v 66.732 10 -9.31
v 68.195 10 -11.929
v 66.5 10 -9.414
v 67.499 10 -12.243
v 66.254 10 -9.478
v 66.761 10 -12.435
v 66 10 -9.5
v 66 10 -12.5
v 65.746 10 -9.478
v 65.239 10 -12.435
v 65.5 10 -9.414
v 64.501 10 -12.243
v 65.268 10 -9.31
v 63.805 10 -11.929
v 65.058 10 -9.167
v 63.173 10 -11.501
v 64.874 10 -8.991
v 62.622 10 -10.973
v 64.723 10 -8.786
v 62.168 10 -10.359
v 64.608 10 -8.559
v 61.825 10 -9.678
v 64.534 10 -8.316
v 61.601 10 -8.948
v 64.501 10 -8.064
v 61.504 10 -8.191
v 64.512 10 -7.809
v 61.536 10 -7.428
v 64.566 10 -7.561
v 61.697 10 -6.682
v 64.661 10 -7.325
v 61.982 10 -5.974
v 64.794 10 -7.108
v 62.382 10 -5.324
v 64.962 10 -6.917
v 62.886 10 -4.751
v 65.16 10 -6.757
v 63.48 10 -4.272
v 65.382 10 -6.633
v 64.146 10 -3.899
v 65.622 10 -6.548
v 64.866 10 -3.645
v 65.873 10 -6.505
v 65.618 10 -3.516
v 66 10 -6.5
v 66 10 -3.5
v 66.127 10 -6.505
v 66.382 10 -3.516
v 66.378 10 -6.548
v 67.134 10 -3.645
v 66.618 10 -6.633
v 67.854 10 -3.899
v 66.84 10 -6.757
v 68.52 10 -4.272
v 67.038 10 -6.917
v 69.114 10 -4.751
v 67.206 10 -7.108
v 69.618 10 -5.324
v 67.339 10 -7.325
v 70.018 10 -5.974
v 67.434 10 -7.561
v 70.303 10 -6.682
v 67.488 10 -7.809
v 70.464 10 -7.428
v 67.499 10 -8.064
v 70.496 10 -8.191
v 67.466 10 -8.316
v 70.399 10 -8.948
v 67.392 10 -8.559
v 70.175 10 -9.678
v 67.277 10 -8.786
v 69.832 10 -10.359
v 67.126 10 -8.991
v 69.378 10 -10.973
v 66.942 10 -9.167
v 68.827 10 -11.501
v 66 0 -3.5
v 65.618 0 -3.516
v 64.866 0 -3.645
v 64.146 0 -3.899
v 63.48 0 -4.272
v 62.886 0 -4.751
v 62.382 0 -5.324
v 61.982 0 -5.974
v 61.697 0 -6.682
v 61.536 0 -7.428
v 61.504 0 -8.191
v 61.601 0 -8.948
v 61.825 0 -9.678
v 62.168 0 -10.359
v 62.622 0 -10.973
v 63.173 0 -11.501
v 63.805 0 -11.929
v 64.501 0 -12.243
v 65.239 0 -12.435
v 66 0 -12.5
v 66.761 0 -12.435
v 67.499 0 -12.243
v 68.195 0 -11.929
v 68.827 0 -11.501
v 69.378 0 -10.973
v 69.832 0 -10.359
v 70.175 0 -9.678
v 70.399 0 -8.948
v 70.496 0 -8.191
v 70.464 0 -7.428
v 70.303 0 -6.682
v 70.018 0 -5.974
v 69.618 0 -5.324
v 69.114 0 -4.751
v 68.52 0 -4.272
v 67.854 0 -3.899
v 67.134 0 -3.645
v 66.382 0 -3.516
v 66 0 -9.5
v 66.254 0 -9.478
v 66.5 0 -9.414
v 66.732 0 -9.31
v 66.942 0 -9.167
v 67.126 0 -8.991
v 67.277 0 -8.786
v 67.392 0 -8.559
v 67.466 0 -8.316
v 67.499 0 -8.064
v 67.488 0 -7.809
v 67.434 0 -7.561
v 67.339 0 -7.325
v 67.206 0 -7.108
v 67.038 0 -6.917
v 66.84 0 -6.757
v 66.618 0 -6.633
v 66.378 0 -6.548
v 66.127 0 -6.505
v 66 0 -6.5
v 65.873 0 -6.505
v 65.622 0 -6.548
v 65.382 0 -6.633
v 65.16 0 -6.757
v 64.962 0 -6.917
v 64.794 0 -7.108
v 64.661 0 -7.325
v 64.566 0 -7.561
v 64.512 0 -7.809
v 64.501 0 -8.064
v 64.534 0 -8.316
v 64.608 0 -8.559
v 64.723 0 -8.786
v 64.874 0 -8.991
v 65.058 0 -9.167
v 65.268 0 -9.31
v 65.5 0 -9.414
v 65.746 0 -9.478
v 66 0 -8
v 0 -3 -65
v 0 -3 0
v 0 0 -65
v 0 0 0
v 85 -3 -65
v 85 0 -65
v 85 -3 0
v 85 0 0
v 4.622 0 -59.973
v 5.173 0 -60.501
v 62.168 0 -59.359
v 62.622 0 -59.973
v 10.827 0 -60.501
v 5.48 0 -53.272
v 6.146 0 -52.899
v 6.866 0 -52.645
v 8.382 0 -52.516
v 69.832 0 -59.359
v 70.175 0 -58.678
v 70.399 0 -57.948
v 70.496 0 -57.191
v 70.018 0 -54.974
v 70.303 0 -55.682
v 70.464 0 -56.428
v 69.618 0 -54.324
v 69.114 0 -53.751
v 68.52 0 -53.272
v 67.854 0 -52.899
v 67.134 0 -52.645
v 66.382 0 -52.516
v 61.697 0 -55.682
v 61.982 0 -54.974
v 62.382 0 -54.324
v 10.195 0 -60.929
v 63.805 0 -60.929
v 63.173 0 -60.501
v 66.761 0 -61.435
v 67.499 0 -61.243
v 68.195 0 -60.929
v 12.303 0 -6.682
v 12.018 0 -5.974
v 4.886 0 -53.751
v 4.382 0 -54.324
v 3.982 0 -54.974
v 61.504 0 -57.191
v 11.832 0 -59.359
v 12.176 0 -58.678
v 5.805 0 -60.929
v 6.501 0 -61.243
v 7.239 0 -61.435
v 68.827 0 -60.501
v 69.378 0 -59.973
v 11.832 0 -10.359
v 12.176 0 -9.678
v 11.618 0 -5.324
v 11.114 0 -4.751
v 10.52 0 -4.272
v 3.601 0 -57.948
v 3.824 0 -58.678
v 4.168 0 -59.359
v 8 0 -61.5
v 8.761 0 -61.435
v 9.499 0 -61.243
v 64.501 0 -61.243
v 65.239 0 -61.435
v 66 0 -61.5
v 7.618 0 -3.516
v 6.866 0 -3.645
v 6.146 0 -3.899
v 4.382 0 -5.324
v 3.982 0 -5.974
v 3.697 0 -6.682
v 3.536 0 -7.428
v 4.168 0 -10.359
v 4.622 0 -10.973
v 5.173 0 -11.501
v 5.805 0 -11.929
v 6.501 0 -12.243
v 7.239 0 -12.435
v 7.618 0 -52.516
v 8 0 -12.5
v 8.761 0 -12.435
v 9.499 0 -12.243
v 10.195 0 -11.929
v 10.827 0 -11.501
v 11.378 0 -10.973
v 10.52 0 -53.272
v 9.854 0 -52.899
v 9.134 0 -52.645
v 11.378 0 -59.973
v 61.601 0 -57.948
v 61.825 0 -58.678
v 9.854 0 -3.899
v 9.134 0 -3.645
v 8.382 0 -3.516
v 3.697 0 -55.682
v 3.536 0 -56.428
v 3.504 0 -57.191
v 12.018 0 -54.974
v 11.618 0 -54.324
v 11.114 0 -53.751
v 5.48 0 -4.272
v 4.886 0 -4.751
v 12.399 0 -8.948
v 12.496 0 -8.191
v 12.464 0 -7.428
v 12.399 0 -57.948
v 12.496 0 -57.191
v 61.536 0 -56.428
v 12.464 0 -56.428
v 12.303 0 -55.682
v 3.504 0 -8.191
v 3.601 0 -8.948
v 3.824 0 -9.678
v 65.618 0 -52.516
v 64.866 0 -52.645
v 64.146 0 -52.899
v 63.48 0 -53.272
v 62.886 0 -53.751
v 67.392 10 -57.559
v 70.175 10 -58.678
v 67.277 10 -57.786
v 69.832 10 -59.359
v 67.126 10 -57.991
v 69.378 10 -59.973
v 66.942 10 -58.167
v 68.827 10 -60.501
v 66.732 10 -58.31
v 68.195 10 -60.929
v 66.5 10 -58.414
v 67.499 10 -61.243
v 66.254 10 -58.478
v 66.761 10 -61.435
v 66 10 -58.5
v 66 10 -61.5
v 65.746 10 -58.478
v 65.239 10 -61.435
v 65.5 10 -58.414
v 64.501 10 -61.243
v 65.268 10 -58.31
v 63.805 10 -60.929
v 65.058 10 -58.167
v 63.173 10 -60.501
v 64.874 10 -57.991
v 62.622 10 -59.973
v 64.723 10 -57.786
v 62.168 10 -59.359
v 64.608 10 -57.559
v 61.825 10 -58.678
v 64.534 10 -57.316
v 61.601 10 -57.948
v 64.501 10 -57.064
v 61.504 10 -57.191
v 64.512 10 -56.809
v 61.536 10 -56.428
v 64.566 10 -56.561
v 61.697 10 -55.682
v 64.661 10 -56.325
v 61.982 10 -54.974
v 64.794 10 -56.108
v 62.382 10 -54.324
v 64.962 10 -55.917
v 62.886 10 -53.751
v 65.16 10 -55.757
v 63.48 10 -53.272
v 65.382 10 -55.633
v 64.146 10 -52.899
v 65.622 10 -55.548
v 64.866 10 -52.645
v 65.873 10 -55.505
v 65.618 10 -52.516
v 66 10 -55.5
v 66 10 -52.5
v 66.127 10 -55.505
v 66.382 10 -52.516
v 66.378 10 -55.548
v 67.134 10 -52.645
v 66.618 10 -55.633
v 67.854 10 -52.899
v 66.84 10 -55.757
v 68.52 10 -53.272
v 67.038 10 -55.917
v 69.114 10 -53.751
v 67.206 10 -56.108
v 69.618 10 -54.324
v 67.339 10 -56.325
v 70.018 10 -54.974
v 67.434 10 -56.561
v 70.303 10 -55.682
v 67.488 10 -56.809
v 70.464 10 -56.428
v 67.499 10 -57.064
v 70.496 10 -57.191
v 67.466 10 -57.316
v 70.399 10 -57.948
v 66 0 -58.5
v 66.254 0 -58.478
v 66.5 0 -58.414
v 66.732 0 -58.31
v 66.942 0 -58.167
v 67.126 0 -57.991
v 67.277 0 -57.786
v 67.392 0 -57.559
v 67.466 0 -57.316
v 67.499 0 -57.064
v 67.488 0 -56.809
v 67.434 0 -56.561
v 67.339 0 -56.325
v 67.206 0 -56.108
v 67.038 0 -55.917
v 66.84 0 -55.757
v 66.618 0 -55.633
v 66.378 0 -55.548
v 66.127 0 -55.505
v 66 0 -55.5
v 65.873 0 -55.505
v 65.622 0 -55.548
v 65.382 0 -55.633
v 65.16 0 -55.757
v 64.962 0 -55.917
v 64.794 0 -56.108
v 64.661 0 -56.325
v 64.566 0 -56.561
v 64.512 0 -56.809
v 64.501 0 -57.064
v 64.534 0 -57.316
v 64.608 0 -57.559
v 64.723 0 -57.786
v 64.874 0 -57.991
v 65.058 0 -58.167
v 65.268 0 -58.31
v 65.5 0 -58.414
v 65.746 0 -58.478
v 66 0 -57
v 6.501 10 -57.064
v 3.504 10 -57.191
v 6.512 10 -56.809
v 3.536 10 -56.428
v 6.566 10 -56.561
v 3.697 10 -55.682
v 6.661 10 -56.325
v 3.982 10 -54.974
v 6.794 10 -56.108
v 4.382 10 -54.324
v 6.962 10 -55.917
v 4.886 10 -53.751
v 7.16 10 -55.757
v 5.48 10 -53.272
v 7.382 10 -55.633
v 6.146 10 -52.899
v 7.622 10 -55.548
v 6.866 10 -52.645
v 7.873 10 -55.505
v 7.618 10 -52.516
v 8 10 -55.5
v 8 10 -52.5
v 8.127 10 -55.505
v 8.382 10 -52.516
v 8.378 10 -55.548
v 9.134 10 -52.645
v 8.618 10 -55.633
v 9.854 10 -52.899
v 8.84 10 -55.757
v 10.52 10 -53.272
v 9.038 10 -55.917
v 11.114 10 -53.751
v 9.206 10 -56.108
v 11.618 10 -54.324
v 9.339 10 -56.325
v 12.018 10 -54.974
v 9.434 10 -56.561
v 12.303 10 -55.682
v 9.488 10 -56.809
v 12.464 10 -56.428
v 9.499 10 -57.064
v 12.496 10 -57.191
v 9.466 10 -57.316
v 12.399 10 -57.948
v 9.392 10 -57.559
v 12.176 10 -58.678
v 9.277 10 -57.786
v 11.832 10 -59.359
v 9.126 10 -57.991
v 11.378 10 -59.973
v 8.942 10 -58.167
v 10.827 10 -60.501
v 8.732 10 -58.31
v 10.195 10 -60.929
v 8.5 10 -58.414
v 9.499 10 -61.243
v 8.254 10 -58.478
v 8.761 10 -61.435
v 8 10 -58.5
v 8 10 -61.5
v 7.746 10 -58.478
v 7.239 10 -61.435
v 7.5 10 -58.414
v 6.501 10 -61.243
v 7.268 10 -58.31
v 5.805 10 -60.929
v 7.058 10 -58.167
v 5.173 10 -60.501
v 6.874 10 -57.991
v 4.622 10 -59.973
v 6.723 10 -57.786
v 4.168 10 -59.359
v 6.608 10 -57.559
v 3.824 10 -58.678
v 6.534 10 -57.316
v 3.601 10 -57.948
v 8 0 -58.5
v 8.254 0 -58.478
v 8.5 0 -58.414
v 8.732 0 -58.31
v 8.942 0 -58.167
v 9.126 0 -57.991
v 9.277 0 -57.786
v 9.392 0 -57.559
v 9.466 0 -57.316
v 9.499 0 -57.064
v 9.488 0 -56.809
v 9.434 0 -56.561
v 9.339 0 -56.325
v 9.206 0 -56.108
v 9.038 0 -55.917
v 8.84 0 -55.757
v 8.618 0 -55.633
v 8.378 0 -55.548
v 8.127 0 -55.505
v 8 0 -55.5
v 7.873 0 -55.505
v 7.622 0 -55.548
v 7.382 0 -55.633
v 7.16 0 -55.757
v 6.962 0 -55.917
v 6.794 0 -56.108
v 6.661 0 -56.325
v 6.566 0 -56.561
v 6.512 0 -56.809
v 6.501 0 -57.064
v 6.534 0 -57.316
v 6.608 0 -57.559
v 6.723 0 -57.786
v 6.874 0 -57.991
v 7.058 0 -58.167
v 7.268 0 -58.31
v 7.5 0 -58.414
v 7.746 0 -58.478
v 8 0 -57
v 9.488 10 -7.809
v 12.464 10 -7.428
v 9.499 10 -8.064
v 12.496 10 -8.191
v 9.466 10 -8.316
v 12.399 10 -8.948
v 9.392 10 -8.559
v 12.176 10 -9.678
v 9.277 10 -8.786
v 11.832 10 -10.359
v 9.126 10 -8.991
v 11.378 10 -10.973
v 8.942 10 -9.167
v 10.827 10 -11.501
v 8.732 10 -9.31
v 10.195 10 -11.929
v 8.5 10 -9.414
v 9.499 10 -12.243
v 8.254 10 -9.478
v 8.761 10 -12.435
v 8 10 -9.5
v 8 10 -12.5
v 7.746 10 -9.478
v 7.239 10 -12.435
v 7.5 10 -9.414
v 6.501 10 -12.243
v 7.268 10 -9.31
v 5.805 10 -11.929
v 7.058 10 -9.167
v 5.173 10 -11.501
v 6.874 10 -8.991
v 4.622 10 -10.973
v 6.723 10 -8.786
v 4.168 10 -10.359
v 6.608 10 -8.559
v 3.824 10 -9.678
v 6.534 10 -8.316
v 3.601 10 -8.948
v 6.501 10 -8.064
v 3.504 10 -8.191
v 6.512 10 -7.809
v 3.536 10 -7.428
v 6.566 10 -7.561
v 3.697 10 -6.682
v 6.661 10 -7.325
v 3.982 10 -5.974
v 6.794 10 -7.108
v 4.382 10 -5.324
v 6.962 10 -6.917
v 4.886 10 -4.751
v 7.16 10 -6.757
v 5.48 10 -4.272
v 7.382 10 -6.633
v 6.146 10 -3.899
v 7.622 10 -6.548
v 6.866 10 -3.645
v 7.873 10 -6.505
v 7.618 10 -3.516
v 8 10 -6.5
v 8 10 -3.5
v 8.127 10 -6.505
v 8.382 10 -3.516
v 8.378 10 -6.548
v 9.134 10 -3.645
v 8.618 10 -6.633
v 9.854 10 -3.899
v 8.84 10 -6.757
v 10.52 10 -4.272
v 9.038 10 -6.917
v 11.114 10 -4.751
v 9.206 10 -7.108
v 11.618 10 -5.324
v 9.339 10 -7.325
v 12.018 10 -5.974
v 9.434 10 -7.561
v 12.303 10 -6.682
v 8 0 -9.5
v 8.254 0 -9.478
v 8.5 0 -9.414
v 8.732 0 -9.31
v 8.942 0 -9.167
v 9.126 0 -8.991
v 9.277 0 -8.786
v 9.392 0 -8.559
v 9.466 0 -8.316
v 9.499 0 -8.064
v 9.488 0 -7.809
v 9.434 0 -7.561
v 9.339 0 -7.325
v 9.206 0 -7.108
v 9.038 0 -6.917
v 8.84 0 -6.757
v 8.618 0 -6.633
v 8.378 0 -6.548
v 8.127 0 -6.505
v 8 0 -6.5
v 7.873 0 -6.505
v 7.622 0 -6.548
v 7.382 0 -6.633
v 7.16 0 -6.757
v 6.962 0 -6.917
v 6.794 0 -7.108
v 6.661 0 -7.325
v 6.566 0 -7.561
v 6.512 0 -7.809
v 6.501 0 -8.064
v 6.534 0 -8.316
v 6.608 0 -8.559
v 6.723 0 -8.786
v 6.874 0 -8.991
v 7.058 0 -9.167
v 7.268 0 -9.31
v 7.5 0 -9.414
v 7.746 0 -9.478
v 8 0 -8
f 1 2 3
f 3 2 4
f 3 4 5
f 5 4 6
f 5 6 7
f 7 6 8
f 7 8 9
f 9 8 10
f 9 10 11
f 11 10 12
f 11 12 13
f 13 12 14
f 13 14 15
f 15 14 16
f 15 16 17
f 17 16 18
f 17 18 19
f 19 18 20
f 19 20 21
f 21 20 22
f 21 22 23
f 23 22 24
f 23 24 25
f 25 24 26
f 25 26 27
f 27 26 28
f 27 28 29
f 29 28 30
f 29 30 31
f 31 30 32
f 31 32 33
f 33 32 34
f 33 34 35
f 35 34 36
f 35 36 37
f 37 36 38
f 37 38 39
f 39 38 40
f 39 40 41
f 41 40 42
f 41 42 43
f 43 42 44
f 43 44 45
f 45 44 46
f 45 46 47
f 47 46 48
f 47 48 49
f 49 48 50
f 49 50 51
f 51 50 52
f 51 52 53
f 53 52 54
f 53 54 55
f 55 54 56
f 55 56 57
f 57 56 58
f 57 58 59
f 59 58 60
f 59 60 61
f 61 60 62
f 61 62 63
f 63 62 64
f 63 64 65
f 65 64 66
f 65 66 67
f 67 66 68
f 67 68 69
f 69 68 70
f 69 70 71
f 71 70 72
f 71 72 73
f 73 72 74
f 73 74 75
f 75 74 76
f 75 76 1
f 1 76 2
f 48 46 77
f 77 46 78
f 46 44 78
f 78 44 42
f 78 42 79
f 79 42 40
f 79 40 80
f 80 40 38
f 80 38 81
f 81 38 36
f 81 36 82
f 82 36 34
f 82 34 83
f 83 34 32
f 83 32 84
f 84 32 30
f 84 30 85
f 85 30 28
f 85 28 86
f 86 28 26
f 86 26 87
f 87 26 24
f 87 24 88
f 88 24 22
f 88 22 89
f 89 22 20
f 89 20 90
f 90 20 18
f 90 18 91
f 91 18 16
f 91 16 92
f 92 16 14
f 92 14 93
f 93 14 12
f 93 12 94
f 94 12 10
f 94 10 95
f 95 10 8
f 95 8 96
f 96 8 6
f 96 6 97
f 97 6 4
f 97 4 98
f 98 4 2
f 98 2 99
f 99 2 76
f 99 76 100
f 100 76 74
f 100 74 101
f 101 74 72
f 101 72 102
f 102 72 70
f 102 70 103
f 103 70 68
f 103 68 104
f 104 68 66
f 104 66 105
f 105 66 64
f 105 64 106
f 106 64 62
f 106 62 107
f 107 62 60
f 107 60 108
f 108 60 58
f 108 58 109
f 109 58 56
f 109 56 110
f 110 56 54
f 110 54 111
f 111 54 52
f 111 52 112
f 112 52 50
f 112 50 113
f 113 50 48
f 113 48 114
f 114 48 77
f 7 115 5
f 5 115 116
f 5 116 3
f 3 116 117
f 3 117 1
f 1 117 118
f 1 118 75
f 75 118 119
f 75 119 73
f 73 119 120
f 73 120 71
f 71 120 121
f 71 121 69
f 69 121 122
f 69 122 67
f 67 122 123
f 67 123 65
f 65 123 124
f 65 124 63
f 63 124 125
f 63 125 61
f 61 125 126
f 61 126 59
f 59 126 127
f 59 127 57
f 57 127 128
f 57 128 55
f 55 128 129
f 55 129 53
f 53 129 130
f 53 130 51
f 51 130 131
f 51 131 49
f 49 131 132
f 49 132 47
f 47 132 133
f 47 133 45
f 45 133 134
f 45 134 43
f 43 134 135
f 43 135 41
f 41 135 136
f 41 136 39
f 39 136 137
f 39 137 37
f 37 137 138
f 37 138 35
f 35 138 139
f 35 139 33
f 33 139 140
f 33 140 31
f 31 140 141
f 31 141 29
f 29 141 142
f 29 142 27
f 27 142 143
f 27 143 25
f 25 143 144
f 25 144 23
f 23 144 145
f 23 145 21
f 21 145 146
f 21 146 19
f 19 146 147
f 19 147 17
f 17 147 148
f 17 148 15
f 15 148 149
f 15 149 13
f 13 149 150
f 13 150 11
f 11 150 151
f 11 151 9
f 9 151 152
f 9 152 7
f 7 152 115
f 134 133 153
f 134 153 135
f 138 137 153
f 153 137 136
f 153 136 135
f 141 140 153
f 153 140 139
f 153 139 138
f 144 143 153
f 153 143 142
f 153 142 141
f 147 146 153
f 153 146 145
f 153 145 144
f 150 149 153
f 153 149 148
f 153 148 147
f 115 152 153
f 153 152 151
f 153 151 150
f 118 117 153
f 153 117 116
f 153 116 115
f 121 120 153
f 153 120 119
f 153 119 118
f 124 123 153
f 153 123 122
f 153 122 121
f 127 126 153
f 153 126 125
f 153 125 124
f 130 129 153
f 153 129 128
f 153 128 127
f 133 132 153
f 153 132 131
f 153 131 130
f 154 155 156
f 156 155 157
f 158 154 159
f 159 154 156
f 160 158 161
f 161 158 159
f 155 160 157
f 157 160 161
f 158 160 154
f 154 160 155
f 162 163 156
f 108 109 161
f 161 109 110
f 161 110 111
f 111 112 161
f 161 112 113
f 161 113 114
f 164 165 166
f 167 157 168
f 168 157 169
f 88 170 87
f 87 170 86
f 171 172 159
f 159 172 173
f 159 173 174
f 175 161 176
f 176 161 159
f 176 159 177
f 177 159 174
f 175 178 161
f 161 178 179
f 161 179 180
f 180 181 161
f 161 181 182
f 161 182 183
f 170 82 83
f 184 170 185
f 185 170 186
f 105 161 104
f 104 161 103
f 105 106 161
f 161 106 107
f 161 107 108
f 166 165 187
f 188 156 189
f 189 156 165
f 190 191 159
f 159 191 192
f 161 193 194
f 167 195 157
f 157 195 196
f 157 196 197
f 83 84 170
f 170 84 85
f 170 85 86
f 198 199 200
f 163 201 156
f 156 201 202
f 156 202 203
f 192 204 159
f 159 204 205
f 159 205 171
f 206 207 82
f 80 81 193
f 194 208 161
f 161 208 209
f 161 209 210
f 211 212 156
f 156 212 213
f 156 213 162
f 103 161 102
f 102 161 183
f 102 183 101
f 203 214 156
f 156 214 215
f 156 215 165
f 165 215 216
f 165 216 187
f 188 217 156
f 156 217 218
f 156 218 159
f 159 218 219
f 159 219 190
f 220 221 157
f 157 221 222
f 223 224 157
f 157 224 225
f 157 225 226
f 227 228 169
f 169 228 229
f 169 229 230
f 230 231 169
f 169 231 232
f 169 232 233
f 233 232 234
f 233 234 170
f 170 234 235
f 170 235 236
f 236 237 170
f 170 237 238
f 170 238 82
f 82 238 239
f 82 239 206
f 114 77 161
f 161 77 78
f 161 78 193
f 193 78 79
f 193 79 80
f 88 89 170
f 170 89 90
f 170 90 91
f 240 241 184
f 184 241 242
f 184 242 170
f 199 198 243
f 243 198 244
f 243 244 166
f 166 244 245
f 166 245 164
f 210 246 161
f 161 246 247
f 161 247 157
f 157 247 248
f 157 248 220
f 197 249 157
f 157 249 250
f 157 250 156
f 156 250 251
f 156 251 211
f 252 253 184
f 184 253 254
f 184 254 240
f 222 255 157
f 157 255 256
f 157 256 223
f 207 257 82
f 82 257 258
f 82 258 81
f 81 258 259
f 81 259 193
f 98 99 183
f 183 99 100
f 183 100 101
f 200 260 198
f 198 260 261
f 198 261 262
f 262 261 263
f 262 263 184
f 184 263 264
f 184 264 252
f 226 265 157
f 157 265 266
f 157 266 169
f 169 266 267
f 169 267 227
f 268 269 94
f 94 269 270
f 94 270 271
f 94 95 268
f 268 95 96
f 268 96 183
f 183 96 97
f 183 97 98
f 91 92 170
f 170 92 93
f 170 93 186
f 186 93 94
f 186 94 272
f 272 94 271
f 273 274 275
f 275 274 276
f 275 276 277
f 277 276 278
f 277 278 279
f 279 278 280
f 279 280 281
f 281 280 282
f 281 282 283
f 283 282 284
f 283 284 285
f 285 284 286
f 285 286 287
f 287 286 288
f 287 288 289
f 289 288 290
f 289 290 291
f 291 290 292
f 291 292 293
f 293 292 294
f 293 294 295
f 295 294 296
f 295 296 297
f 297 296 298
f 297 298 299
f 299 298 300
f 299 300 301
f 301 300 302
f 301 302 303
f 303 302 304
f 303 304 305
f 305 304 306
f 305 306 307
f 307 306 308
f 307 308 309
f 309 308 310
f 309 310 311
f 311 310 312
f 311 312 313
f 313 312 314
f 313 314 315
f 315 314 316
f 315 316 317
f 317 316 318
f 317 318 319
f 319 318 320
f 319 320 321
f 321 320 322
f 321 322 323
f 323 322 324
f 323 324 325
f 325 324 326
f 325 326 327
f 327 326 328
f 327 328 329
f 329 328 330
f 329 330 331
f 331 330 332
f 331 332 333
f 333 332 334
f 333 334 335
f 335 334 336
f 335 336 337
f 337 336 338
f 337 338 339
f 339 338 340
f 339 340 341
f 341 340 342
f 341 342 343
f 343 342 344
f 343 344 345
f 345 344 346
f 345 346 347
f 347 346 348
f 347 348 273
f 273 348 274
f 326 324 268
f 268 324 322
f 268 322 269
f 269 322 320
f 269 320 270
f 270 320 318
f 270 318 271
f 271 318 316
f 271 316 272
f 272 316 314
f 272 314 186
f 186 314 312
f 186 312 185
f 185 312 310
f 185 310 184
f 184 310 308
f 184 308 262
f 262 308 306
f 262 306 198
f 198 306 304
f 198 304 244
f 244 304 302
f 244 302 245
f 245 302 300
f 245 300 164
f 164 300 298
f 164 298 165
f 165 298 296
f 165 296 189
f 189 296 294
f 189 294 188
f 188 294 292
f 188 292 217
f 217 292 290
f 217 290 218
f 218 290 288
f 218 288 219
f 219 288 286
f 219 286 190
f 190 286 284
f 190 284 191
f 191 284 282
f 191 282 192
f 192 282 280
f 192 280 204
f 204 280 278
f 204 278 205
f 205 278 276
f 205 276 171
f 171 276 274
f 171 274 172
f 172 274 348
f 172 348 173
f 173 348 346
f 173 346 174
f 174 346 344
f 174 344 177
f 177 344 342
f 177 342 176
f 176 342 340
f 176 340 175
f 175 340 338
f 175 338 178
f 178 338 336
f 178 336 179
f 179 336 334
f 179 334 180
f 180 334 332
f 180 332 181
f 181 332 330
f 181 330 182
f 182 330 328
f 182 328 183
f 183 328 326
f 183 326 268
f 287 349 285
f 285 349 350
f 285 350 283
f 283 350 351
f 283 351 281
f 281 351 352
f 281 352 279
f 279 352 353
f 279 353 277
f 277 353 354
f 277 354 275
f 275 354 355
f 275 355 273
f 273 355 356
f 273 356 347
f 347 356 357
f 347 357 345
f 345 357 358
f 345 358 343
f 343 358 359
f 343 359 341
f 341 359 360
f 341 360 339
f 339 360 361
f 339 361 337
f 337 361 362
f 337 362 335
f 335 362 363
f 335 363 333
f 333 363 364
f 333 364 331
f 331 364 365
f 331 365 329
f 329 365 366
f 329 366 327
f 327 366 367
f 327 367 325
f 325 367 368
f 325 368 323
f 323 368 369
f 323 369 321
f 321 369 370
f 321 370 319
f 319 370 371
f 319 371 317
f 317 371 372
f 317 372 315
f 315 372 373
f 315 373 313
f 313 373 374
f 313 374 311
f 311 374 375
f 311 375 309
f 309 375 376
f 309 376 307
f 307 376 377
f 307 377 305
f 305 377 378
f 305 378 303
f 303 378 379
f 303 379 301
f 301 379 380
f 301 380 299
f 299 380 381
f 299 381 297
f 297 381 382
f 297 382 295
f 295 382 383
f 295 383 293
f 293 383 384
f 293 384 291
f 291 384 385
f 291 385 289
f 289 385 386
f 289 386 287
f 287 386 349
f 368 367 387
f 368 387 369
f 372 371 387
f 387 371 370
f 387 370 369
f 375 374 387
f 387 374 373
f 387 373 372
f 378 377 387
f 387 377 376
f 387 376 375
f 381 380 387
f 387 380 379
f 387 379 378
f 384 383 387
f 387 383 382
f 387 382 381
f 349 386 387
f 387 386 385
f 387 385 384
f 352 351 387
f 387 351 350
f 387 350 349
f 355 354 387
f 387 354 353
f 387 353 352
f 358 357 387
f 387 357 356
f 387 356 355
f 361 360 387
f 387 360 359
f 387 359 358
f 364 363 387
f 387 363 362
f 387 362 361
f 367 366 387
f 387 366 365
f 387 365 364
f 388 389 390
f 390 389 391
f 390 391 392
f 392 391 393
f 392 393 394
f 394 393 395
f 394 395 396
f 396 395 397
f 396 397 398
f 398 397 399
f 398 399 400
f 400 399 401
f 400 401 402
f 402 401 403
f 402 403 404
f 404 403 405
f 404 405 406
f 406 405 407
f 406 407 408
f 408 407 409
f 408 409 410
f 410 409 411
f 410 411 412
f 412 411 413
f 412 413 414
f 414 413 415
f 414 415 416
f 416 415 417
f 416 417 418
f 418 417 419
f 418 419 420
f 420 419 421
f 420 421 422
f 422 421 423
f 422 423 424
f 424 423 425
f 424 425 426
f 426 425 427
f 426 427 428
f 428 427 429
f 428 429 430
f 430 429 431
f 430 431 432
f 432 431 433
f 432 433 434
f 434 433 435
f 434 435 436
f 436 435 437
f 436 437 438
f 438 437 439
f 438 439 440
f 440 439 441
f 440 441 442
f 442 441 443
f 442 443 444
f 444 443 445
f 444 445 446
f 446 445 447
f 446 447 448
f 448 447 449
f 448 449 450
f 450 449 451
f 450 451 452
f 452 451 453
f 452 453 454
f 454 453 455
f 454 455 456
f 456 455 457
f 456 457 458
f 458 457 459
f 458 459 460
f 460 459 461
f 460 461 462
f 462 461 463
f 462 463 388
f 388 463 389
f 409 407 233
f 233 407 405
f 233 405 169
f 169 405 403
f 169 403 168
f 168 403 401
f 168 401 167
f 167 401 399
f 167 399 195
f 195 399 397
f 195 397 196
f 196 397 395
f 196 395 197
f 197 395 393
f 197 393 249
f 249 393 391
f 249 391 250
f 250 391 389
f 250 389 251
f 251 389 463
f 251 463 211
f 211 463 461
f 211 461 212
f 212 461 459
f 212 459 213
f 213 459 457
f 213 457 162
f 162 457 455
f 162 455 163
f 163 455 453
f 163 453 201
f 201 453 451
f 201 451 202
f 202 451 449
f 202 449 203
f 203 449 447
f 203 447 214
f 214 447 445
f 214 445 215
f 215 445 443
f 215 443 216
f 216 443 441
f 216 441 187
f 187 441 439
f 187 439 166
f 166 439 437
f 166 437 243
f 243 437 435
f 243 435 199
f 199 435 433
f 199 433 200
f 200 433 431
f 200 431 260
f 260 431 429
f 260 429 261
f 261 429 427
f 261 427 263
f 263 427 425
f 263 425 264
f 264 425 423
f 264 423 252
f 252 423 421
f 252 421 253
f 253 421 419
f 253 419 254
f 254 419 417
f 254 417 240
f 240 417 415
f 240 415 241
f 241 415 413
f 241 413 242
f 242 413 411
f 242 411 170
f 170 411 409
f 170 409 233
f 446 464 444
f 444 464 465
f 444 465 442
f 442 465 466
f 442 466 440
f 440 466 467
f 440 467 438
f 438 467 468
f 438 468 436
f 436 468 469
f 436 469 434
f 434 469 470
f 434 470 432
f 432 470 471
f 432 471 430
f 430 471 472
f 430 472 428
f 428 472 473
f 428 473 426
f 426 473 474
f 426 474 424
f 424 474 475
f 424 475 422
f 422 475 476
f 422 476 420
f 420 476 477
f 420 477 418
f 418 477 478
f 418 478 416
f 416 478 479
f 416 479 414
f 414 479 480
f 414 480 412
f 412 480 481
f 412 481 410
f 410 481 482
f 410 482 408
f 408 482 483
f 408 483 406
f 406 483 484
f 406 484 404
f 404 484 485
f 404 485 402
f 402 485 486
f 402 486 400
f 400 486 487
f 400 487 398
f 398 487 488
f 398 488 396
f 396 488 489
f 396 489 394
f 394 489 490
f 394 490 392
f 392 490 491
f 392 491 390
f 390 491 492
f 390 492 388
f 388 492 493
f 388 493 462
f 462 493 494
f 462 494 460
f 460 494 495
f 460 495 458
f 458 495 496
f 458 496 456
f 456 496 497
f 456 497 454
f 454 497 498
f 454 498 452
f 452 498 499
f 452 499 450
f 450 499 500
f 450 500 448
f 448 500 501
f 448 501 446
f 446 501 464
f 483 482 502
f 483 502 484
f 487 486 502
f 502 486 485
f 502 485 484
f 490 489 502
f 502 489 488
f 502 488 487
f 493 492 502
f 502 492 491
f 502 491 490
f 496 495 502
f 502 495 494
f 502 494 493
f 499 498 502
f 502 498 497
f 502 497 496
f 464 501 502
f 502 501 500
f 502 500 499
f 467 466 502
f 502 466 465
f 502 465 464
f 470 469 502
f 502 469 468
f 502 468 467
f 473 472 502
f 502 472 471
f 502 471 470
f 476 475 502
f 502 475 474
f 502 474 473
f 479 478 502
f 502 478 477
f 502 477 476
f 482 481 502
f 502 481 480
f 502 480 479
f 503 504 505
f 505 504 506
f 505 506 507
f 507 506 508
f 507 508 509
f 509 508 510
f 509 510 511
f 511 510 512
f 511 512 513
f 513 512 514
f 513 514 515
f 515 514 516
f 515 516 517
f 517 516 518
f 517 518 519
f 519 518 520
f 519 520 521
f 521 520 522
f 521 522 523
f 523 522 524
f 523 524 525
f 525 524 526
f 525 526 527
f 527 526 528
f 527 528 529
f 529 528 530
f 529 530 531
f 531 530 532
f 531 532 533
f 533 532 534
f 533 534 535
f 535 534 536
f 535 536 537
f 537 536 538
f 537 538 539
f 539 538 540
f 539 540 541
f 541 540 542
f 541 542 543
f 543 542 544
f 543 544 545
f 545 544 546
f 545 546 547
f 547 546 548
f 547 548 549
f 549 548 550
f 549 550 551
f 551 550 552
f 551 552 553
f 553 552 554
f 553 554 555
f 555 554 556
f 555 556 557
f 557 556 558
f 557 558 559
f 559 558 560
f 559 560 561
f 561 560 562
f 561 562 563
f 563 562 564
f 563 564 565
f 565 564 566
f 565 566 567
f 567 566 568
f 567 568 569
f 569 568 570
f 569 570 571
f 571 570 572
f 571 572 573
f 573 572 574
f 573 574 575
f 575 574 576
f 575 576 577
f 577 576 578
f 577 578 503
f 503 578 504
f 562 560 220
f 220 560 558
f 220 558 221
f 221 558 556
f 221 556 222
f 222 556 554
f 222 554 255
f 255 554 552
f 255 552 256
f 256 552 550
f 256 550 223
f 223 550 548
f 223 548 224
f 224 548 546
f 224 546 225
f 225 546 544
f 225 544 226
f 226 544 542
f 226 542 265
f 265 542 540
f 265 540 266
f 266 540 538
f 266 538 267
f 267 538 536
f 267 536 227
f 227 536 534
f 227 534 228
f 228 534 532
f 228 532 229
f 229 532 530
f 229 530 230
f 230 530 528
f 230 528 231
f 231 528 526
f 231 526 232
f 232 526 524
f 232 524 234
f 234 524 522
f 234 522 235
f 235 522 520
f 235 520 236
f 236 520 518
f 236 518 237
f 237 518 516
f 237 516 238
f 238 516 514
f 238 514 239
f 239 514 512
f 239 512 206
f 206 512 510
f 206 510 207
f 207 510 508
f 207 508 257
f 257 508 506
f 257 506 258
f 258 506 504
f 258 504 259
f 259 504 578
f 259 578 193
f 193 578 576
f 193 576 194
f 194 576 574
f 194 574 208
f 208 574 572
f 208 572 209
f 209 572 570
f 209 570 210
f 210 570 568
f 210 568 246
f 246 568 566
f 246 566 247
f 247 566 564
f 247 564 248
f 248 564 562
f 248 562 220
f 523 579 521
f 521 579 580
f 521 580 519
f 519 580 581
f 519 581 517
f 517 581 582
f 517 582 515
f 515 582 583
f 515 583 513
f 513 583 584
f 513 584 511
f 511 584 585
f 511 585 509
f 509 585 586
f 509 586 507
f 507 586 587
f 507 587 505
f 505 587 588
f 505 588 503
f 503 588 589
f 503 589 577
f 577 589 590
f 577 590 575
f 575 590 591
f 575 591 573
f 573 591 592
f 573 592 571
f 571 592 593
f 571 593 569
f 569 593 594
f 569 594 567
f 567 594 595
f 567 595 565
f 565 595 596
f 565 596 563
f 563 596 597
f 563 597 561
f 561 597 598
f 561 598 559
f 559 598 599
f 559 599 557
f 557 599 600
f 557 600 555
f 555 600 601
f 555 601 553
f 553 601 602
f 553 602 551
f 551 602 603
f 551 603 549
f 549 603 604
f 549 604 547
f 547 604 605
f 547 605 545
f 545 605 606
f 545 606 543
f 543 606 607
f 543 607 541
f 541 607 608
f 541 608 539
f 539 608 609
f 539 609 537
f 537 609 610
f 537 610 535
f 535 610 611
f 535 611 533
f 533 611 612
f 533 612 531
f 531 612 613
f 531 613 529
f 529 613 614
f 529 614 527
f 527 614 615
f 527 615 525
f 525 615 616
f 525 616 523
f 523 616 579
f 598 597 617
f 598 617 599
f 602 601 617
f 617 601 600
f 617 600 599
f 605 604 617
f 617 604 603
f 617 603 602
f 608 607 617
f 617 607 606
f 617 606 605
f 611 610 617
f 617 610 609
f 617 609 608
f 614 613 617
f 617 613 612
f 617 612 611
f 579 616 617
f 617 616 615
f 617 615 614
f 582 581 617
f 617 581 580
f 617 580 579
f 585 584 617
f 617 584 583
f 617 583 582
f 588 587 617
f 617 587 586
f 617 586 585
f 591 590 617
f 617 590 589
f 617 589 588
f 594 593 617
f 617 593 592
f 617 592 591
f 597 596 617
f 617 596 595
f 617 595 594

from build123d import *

# Parameters (mm, degrees)
SKETCH2_R             = 4.5
SKETCH2_R_2           = 1.5
BOSS_EXTRUDE1_DEPTH   = 10
BOSS_EXTRUDE1_2_DEPTH = 10
BOSS_EXTRUDE1_3_DEPTH = 10
BOSS_EXTRUDE1_4_DEPTH = 10
SKETCH3_W             = 85
SKETCH3_H             = 65
BOSS_EXTRUDE2_DEPTH   = 3


with BuildPart() as part:
    # Sketch2 → Boss-Extrude1 (new body)
    with BuildSketch(Plane(origin=(0, 0, 0), x_dir=(1, 0, 0), z_dir=(0, 1, 0))):
        with Locations(Location((66, 8, 0), (0, 0, 270))):
            Circle(SKETCH2_R)
        with Locations(Location((66, 8, 0), (0, 0, 270))):
            Circle(SKETCH2_R_2, mode=Mode.SUBTRACT)
    extrude(amount=BOSS_EXTRUDE1_DEPTH)



with BuildPart() as body_2:
    # Sketch2 → Boss-Extrude1 2 (new body)
    with BuildSketch(Plane(origin=(0, 0, 0), x_dir=(1, 0, 0), z_dir=(0, 1, 0))):
        with Locations(Location((66, 57, 0), (0, 0, 270))):
            Circle(SKETCH2_R)
        with Locations(Location((66, 57, 0), (0, 0, 270))):
            Circle(SKETCH2_R_2, mode=Mode.SUBTRACT)
    extrude(amount=BOSS_EXTRUDE1_2_DEPTH)


with BuildPart() as body_3:
    # Sketch2 → Boss-Extrude1 3 (new body)
    with BuildSketch(Plane(origin=(0, 0, 0), x_dir=(1, 0, 0), z_dir=(0, 1, 0))):
        with Locations(Location((8, 57, 0), (0, 0, 270))):
            Circle(SKETCH2_R)
        with Locations(Location((8, 57, 0), (0, 0, 270))):
            Circle(SKETCH2_R_2, mode=Mode.SUBTRACT)
    extrude(amount=BOSS_EXTRUDE1_3_DEPTH)


with BuildPart() as body_4:
    # Sketch2 → Boss-Extrude1 4 (new body)
    with BuildSketch(Plane(origin=(0, 0, 0), x_dir=(1, 0, 0), z_dir=(0, 1, 0))):
        with Locations(Location((8, 8, 0), (0, 0, 270))):
            Circle(SKETCH2_R)
        with Locations(Location((8, 8, 0), (0, 0, 270))):
            Circle(SKETCH2_R_2, mode=Mode.SUBTRACT)
    extrude(amount=BOSS_EXTRUDE1_4_DEPTH)


with BuildPart() as part_1:
    add(part.part)

    add(body_2.part)  # Boss-Extrude2 merges body 2

    add(body_3.part)  # Boss-Extrude2 merges body 3

    add(body_4.part)  # Boss-Extrude2 merges body 4
    # Sketch3 → Boss-Extrude2 (add)
    with BuildSketch(Plane(origin=(0, 0, 0), x_dir=(1, 0, 0), z_dir=(0, 1, 0))):
        with Locations((42.5, 32.5)):
            Rectangle(SKETCH3_W, SKETCH3_H)
    extrude(amount=-BOSS_EXTRUDE2_DEPTH)


solid = part_1.part
